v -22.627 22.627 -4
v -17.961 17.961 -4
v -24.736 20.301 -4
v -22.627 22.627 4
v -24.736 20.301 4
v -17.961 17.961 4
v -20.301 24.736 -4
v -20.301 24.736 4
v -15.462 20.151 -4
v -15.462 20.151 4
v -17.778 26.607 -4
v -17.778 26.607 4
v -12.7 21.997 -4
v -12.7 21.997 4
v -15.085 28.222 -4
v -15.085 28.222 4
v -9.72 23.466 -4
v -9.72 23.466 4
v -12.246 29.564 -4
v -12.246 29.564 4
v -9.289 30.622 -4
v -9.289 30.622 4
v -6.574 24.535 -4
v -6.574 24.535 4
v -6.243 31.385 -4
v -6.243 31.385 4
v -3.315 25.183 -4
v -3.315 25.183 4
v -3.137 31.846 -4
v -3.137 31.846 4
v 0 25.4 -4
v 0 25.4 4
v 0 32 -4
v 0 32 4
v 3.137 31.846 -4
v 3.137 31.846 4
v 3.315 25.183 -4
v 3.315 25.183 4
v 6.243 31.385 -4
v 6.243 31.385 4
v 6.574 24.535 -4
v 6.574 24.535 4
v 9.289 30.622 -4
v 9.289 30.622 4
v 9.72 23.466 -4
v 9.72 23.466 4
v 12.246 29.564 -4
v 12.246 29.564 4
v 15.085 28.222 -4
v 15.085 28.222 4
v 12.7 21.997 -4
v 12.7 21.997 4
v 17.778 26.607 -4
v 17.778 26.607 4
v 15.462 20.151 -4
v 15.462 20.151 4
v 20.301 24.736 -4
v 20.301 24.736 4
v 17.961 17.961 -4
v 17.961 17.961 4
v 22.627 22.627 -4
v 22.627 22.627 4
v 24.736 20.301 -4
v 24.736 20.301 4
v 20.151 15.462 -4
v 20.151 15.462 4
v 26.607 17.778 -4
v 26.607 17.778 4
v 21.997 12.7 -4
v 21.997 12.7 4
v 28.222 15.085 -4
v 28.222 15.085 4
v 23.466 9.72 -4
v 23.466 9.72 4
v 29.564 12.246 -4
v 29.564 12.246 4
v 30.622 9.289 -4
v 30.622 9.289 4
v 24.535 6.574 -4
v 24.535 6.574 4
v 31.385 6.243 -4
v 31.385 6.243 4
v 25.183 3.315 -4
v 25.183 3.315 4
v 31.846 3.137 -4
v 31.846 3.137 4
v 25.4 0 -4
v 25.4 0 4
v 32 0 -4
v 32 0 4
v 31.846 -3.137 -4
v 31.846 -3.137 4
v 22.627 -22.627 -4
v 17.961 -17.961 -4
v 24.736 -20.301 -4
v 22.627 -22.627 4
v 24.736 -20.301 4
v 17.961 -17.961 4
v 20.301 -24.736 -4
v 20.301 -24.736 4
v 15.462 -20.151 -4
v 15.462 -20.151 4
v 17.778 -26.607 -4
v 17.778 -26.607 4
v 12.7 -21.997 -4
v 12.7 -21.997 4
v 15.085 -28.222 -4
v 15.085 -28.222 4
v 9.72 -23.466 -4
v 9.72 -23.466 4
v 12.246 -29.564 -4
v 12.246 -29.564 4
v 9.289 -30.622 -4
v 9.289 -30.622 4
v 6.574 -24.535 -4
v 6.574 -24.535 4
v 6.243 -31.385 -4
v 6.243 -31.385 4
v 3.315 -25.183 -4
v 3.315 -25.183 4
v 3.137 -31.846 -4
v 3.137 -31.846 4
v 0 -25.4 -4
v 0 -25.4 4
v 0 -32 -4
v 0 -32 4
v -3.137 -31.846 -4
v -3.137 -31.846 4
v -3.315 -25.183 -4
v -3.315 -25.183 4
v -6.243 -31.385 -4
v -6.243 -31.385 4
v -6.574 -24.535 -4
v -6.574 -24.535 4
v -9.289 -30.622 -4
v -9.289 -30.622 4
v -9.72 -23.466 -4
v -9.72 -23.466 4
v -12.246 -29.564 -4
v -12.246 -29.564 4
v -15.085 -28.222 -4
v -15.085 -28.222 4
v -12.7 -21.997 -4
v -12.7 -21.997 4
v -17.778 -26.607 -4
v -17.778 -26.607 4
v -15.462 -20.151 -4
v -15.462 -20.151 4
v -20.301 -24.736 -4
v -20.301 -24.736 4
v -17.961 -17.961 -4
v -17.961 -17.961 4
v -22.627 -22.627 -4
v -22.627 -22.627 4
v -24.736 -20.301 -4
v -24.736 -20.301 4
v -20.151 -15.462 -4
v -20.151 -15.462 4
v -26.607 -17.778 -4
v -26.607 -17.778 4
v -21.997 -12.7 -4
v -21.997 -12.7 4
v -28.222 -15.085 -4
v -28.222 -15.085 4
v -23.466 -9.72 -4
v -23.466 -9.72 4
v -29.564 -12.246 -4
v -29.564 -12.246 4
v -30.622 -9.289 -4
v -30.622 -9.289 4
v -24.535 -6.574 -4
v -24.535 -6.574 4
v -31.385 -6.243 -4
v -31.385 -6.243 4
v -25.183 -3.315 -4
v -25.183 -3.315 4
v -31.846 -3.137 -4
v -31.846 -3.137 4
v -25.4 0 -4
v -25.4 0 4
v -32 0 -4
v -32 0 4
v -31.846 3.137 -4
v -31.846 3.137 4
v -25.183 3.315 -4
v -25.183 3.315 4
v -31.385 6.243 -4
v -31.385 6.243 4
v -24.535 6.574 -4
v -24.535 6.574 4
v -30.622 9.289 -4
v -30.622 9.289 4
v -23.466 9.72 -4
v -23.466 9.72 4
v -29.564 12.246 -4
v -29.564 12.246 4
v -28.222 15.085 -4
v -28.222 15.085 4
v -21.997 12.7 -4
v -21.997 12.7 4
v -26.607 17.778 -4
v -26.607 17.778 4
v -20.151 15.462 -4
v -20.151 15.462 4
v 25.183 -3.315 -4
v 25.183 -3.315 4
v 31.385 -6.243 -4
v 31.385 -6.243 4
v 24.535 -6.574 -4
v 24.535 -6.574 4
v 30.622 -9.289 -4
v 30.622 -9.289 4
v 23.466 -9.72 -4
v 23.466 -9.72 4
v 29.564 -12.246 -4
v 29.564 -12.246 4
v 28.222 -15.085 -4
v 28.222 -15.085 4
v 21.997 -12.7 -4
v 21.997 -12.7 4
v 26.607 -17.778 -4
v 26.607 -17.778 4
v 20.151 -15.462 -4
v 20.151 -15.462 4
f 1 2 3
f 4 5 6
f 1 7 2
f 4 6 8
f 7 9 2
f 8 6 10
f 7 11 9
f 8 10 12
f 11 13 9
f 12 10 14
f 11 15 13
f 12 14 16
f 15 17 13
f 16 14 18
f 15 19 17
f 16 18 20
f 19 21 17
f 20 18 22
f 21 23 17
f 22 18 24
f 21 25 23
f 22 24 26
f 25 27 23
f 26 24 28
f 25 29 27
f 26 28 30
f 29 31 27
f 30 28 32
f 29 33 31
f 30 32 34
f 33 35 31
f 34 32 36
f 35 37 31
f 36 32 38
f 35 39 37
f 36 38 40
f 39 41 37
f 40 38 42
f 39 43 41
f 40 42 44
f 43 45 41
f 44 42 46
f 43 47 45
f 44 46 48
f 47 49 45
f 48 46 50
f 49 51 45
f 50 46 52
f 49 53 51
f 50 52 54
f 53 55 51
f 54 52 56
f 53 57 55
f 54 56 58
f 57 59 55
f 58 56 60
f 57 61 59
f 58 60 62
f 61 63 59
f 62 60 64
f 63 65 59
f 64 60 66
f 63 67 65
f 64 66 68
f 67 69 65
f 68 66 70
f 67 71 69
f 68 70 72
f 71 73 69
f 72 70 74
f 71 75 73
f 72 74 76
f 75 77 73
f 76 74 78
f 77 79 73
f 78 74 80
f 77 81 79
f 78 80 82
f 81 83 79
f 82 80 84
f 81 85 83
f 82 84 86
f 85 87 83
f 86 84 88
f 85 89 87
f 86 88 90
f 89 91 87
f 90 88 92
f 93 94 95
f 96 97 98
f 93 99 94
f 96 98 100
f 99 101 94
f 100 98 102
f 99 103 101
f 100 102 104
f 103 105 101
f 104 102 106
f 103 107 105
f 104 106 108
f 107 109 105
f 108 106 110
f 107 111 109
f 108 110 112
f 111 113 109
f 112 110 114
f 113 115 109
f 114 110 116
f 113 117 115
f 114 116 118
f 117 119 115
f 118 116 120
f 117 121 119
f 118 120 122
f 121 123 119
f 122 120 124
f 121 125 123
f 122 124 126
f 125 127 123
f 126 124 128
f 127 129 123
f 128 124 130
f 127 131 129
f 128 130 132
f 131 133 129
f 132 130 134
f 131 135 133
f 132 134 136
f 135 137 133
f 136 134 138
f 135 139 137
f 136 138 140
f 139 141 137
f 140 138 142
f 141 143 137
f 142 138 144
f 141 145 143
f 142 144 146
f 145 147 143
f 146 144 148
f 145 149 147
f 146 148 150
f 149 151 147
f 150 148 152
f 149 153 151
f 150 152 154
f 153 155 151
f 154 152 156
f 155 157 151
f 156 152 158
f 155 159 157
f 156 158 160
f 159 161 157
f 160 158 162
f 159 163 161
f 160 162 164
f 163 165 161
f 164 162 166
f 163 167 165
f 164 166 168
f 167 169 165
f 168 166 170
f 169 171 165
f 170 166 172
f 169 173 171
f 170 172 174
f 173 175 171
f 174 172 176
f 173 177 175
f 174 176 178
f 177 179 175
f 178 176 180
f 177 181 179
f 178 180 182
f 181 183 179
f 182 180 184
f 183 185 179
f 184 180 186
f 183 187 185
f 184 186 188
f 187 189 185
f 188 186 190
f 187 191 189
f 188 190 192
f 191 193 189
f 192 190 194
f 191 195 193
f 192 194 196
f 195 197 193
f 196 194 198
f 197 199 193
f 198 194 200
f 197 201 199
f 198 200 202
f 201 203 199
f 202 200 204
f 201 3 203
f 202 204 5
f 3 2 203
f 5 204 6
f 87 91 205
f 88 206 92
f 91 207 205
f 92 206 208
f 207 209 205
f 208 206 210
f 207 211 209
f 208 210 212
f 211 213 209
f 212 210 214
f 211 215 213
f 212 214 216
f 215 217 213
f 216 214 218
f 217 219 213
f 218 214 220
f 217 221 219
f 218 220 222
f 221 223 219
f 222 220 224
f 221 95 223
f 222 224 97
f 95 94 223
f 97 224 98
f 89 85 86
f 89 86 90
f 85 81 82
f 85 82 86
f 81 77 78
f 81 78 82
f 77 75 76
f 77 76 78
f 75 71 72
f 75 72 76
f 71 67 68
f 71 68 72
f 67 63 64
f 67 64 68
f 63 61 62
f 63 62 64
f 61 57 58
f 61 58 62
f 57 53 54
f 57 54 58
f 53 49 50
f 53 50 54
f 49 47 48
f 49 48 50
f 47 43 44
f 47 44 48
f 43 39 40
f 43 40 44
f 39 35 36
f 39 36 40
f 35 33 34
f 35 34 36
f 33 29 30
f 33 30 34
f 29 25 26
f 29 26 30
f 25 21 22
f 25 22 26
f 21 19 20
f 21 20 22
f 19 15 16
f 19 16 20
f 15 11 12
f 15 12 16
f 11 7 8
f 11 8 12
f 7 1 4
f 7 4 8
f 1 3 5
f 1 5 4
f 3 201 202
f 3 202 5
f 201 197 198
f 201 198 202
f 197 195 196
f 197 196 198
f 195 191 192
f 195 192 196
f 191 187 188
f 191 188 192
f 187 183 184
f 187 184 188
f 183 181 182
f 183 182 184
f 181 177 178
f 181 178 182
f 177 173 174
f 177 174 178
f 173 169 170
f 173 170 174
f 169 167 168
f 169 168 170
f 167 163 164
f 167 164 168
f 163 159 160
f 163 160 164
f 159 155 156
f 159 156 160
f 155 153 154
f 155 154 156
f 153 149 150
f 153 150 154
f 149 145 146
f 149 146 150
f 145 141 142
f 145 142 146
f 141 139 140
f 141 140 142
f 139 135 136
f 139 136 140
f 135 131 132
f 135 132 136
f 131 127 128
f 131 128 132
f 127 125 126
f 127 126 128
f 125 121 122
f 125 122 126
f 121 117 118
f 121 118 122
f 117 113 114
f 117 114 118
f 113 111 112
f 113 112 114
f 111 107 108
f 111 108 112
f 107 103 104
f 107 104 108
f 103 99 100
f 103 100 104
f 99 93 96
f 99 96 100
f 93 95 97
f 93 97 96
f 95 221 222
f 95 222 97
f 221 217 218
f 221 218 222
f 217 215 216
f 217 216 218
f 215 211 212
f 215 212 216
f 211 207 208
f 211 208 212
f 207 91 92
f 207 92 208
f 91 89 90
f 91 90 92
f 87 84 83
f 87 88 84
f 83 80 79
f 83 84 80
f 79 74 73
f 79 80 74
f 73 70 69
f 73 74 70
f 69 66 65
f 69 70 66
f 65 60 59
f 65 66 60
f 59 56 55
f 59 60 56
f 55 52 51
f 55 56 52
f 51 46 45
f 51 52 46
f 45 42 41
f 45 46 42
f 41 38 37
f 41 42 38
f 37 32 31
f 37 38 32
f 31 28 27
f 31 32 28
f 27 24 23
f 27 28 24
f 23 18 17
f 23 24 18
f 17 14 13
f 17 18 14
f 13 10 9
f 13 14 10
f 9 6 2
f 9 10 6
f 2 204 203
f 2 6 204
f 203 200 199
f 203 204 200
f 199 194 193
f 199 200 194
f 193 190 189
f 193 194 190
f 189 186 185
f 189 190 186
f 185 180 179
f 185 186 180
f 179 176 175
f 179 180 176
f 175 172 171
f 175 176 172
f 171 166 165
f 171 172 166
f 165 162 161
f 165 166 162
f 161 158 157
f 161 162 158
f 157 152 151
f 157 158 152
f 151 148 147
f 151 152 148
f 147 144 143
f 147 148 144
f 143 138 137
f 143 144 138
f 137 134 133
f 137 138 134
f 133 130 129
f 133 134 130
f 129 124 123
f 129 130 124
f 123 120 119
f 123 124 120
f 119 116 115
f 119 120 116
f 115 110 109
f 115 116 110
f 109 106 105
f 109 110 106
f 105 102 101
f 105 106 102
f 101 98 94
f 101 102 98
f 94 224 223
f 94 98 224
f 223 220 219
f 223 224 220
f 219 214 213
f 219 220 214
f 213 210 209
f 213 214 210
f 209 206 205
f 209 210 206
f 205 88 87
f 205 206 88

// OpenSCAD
polyhedron(points=[[-22.627417, 22.627417, -4.0], [-24.736335, 20.300585, -4.0], [-17.960512, 17.960512, -4.0], [-22.627417, 22.627417, 4.0], [-24.736335, 20.300585, 4.0], [-17.960512, 17.960512, 4.0], [-20.300585, 24.736335, -4.0], [-20.300585, 24.736335, 4.0], [-15.46254, 20.151175, -4.0], [-15.46254, 20.151175, 4.0], [-17.778247, 26.607028, -4.0], [-17.778247, 26.607028, 4.0], [-12.7, 21.997045, -4.0], [-12.7, 21.997045, 4.0], [-15.084696, 28.22148, -4.0], [-15.084696, 28.22148, 4.0], [-9.720159, 23.46654, -4.0], [-9.720159, 23.46654, 4.0], [-12.24587, 29.564145, -4.0], [-12.24587, 29.564145, 4.0], [-9.28911, 30.622091, -4.0], [-9.28911, 30.622091, 4.0], [-6.574004, 24.534516, -4.0], [-6.574004, 24.534516, 4.0], [-6.24289, 31.385129, -4.0], [-6.24289, 31.385129, 4.0], [-3.315365, 25.182699, -4.0], [-3.315365, 25.182699, 4.0], [-3.136548, 31.845911, -4.0], [-3.136548, 31.845911, 4.0], [0.0, 25.4, -4.0], [0.0, 25.4, 4.0], [0.0, 32.0, -4.0], [0.0, 32.0, 4.0], [3.136548, 31.845911, -4.0], [3.136548, 31.845911, 4.0], [3.315365, 25.182699, -4.0], [3.315365, 25.182699, 4.0], [6.24289, 31.385129, -4.0], [6.24289, 31.385129, 4.0], [6.574004, 24.534516, -4.0], [6.574004, 24.534516, 4.0], [9.28911, 30.622091, -4.0], [9.28911, 30.622091, 4.0], [9.720159, 23.46654, -4.0], [9.720159, 23.46654, 4.0], [12.24587, 29.564145, -4.0], [12.24587, 29.564145, 4.0], [15.084696, 28.22148, -4.0], [15.084696, 28.22148, 4.0], [12.7, 21.997045, -4.0], [12.7, 21.997045, 4.0], [17.778247, 26.607028, -4.0], [17.778247, 26.607028, 4.0], [15.46254, 20.151175, -4.0], [15.46254, 20.151175, 4.0], [20.300585, 24.736335, -4.0], [20.300585, 24.736335, 4.0], [17.960512, 17.960512, -4.0], [17.960512, 17.960512, 4.0], [22.627417, 22.627417, -4.0], [22.627417, 22.627417, 4.0], [24.736335, 20.300585, -4.0], [24.736335, 20.300585, 4.0], [20.151175, 15.46254, -4.0], [20.151175, 15.46254, 4.0], [26.607028, 17.778247, -4.0], [26.607028, 17.778247, 4.0], [21.997045, 12.7, -4.0], [21.997045, 12.7, 4.0], [28.22148, 15.084696, -4.0], [28.22148, 15.084696, 4.0], [23.46654, 9.720159, -4.0], [23.46654, 9.720159, 4.0], [29.564145, 12.24587, -4.0], [29.564145, 12.24587, 4.0], [30.622091, 9.28911, -4.0], [30.622091, 9.28911, 4.0], [24.534516, 6.574004, -4.0], [24.534516, 6.574004, 4.0], [31.385129, 6.24289, -4.0], [31.385129, 6.24289, 4.0], [25.182699, 3.315365, -4.0], [25.182699, 3.315365, 4.0], [31.845911, 3.136548, -4.0], [31.845911, 3.136548, 4.0], [25.4, 0.0, -4.0], [25.4, 0.0, 4.0], [32.0, 0.0, -4.0], [32.0, 0.0, 4.0], [31.845911, -3.136548, -4.0], [31.845911, -3.136548, 4.0], [22.627417, -22.627417, -4.0], [24.736335, -20.300585, -4.0], [17.960512, -17.960512, -4.0], [22.627417, -22.627417, 4.0], [24.736335, -20.300585, 4.0], [17.960512, -17.960512, 4.0], [20.300585, -24.736335, -4.0], [20.300585, -24.736335, 4.0], [15.46254, -20.151175, -4.0], [15.46254, -20.151175, 4.0], [17.778247, -26.607028, -4.0], [17.778247, -26.607028, 4.0], [12.7, -21.997045, -4.0], [12.7, -21.997045, 4.0], [15.084696, -28.22148, -4.0], [15.084696, -28.22148, 4.0], [9.720159, -23.46654, -4.0], [9.720159, -23.46654, 4.0], [12.24587, -29.564145, -4.0], [12.24587, -29.564145, 4.0], [9.28911, -30.622091, -4.0], [9.28911, -30.622091, 4.0], [6.574004, -24.534516, -4.0], [6.574004, -24.534516, 4.0], [6.24289, -31.385129, -4.0], [6.24289, -31.385129, 4.0], [3.315365, -25.182699, -4.0], [3.315365, -25.182699, 4.0], [3.136548, -31.845911, -4.0], [3.136548, -31.845911, 4.0], [-0.0, -25.4, -4.0], [-0.0, -25.4, 4.0], [-0.0, -32.0, -4.0], [-0.0, -32.0, 4.0], [-3.136548, -31.845911, -4.0], [-3.136548, -31.845911, 4.0], [-3.315365, -25.182699, -4.0], [-3.315365, -25.182699, 4.0], [-6.24289, -31.385129, -4.0], [-6.24289, -31.385129, 4.0], [-6.574004, -24.534516, -4.0], [-6.574004, -24.534516, 4.0], [-9.28911, -30.622091, -4.0], [-9.28911, -30.622091, 4.0], [-9.720159, -23.46654, -4.0], [-9.720159, -23.46654, 4.0], [-12.24587, -29.564145, -4.0], [-12.24587, -29.564145, 4.0], [-15.084696, -28.22148, -4.0], [-15.084696, -28.22148, 4.0], [-12.7, -21.997045, -4.0], [-12.7, -21.997045, 4.0], [-17.778247, -26.607028, -4.0], [-17.778247, -26.607028, 4.0], [-15.46254, -20.151175, -4.0], [-15.46254, -20.151175, 4.0], [-20.300585, -24.736335, -4.0], [-20.300585, -24.736335, 4.0], [-17.960512, -17.960512, -4.0], [-17.960512, -17.960512, 4.0], [-22.627417, -22.627417, -4.0], [-22.627417, -22.627417, 4.0], [-24.736335, -20.300585, -4.0], [-24.736335, -20.300585, 4.0], [-20.151175, -15.46254, -4.0], [-20.151175, -15.46254, 4.0], [-26.607028, -17.778247, -4.0], [-26.607028, -17.778247, 4.0], [-21.997045, -12.7, -4.0], [-21.997045, -12.7, 4.0], [-28.22148, -15.084696, -4.0], [-28.22148, -15.084696, 4.0], [-23.46654, -9.720159, -4.0], [-23.46654, -9.720159, 4.0], [-29.564145, -12.24587, -4.0], [-29.564145, -12.24587, 4.0], [-30.622091, -9.28911, -4.0], [-30.622091, -9.28911, 4.0], [-24.534516, -6.574004, -4.0], [-24.534516, -6.574004, 4.0], [-31.385129, -6.24289, -4.0], [-31.385129, -6.24289, 4.0], [-25.182699, -3.315365, -4.0], [-25.182699, -3.315365, 4.0], [-31.845911, -3.136548, -4.0], [-31.845911, -3.136548, 4.0], [-25.4, 0.0, -4.0], [-25.4, 0.0, 4.0], [-32.0, 0.0, -4.0], [-32.0, 0.0, 4.0], [-31.845911, 3.136548, -4.0], [-31.845911, 3.136548, 4.0], [-25.182699, 3.315365, -4.0], [-25.182699, 3.315365, 4.0], [-31.385129, 6.24289, -4.0], [-31.385129, 6.24289, 4.0], [-24.534516, 6.574004, -4.0], [-24.534516, 6.574004, 4.0], [-30.622091, 9.28911, -4.0], [-30.622091, 9.28911, 4.0], [-23.46654, 9.720159, -4.0], [-23.46654, 9.720159, 4.0], [-29.564145, 12.24587, -4.0], [-29.564145, 12.24587, 4.0], [-28.22148, 15.084696, -4.0], [-28.22148, 15.084696, 4.0], [-21.997045, 12.7, -4.0], [-21.997045, 12.7, 4.0], [-26.607028, 17.778247, -4.0], [-26.607028, 17.778247, 4.0], [-20.151175, 15.46254, -4.0], [-20.151175, 15.46254, 4.0], [25.182699, -3.315365, -4.0], [25.182699, -3.315365, 4.0], [31.385129, -6.24289, -4.0], [31.385129, -6.24289, 4.0], [24.534516, -6.574004, -4.0], [24.534516, -6.574004, 4.0], [30.622091, -9.28911, -4.0], [30.622091, -9.28911, 4.0], [23.46654, -9.720159, -4.0], [23.46654, -9.720159, 4.0], [29.564145, -12.24587, -4.0], [29.564145, -12.24587, 4.0], [28.22148, -15.084696, -4.0], [28.22148, -15.084696, 4.0], [21.997045, -12.7, -4.0], [21.997045, -12.7, 4.0], [26.607028, -17.778247, -4.0], [26.607028, -17.778247, 4.0], [20.151175, -15.46254, -4.0], [20.151175, -15.46254, 4.0]], faces=[[0, 2, 1], [3, 4, 5], [0, 6, 2], [3, 5, 7], [6, 8, 2], [7, 5, 9], [6, 10, 8], [7, 9, 11], [10, 12, 8], [11, 9, 13], [10, 14, 12], [11, 13, 15], [14, 16, 12], [15, 13, 17], [14, 18, 16], [15, 17, 19], [18, 20, 16], [19, 17, 21], [20, 22, 16], [21, 17, 23], [20, 24, 22], [21, 23, 25], [24, 26, 22], [25, 23, 27], [24, 28, 26], [25, 27, 29], [28, 30, 26], [29, 27, 31], [28, 32, 30], [29, 31, 33], [32, 34, 30], [33, 31, 35], [34, 36, 30], [35, 31, 37], [34, 38, 36], [35, 37, 39], [38, 40, 36], [39, 37, 41], [38, 42, 40], [39, 41, 43], [42, 44, 40], [43, 41, 45], [42, 46, 44], [43, 45, 47], [46, 48, 44], [47, 45, 49], [48, 50, 44], [49, 45, 51], [48, 52, 50], [49, 51, 53], [52, 54, 50], [53, 51, 55], [52, 56, 54], [53, 55, 57], [56, 58, 54], [57, 55, 59], [56, 60, 58], [57, 59, 61], [60, 62, 58], [61, 59, 63], [62, 64, 58], [63, 59, 65], [62, 66, 64], [63, 65, 67], [66, 68, 64], [67, 65, 69], [66, 70, 68], [67, 69, 71], [70, 72, 68], [71, 69, 73], [70, 74, 72], [71, 73, 75], [74, 76, 72], [75, 73, 77], [76, 78, 72], [77, 73, 79], [76, 80, 78], [77, 79, 81], [80, 82, 78], [81, 79, 83], [80, 84, 82], [81, 83, 85], [84, 86, 82], [85, 83, 87], [84, 88, 86], [85, 87, 89], [88, 90, 86], [89, 87, 91], [92, 94, 93], [95, 96, 97], [92, 98, 94], [95, 97, 99], [98, 100, 94], [99, 97, 101], [98, 102, 100], [99, 101, 103], [102, 104, 100], [103, 101, 105], [102, 106, 104], [103, 105, 107], [106, 108, 104], [107, 105, 109], [106, 110, 108], [107, 109, 111], [110, 112, 108], [111, 109, 113], [112, 114, 108], [113, 109, 115], [112, 116, 114], [113, 115, 117], [116, 118, 114], [117, 115, 119], [116, 120, 118], [117, 119, 121], [120, 122, 118], [121, 119, 123], [120, 124, 122], [121, 123, 125], [124, 126, 122], [125, 123, 127], [126, 128, 122], [127, 123, 129], [126, 130, 128], [127, 129, 131], [130, 132, 128], [131, 129, 133], [130, 134, 132], [131, 133, 135], [134, 136, 132], [135, 133, 137], [134, 138, 136], [135, 137, 139], [138, 140, 136], [139, 137, 141], [140, 142, 136], [141, 137, 143], [140, 144, 142], [141, 143, 145], [144, 146, 142], [145, 143, 147], [144, 148, 146], [145, 147, 149], [148, 150, 146], [149, 147, 151], [148, 152, 150], [149, 151, 153], [152, 154, 150], [153, 151, 155], [154, 156, 150], [155, 151, 157], [154, 158, 156], [155, 157, 159], [158, 160, 156], [159, 157, 161], [158, 162, 160], [159, 161, 163], [162, 164, 160], [163, 161, 165], [162, 166, 164], [163, 165, 167], [166, 168, 164], [167, 165, 169], [168, 170, 164], [169, 165, 171], [168, 172, 170], [169, 171, 173], [172, 174, 170], [173, 171, 175], [172, 176, 174], [173, 175, 177], [176, 178, 174], [177, 175, 179], [176, 180, 178], [177, 179, 181], [180, 182, 178], [181, 179, 183], [182, 184, 178], [183, 179, 185], [182, 186, 184], [183, 185, 187], [186, 188, 184], [187, 185, 189], [186, 190, 188], [187, 189, 191], [190, 192, 188], [191, 189, 193], [190, 194, 192], [191, 193, 195], [194, 196, 192], [195, 193, 197], [196, 198, 192], [197, 193, 199], [196, 200, 198], [197, 199, 201], [200, 202, 198], [201, 199, 203], [200, 1, 202], [201, 203, 4], [1, 2, 202], [4, 203, 5], [86, 90, 204], [87, 205, 91], [90, 206, 204], [91, 205, 207], [206, 208, 204], [207, 205, 209], [206, 210, 208], [207, 209, 211], [210, 212, 208], [211, 209, 213], [210, 214, 212], [211, 213, 215], [214, 216, 212], [215, 213, 217], [216, 218, 212], [217, 213, 219], [216, 220, 218], [217, 219, 221], [220, 222, 218], [221, 219, 223], [220, 93, 222], [221, 223, 96], [93, 94, 222], [96, 223, 97], [88, 84, 85], [88, 85, 89], [84, 80, 81], [84, 81, 85], [80, 76, 77], [80, 77, 81], [76, 74, 75], [76, 75, 77], [74, 70, 71], [74, 71, 75], [70, 66, 67], [70, 67, 71], [66, 62, 63], [66, 63, 67], [62, 60, 61], [62, 61, 63], [60, 56, 57], [60, 57, 61], [56, 52, 53], [56, 53, 57], [52, 48, 49], [52, 49, 53], [48, 46, 47], [48, 47, 49], [46, 42, 43], [46, 43, 47], [42, 38, 39], [42, 39, 43], [38, 34, 35], [38, 35, 39], [34, 32, 33], [34, 33, 35], [32, 28, 29], [32, 29, 33], [28, 24, 25], [28, 25, 29], [24, 20, 21], [24, 21, 25], [20, 18, 19], [20, 19, 21], [18, 14, 15], [18, 15, 19], [14, 10, 11], [14, 11, 15], [10, 6, 7], [10, 7, 11], [6, 0, 3], [6, 3, 7], [0, 1, 4], [0, 4, 3], [1, 200, 201], [1, 201, 4], [200, 196, 197], [200, 197, 201], [196, 194, 195], [196, 195, 197], [194, 190, 191], [194, 191, 195], [190, 186, 187], [190, 187, 191], [186, 182, 183], [186, 183, 187], [182, 180, 181], [182, 181, 183], [180, 176, 177], [180, 177, 181], [176, 172, 173], [176, 173, 177], [172, 168, 169], [172, 169, 173], [168, 166, 167], [168, 167, 169], [166, 162, 163], [166, 163, 167], [162, 158, 159], [162, 159, 163], [158, 154, 155], [158, 155, 159], [154, 152, 153], [154, 153, 155], [152, 148, 149], [152, 149, 153], [148, 144, 145], [148, 145, 149], [144, 140, 141], [144, 141, 145], [140, 138, 139], [140, 139, 141], [138, 134, 135], [138, 135, 139], [134, 130, 131], [134, 131, 135], [130, 126, 127], [130, 127, 131], [126, 124, 125], [126, 125, 127], [124, 120, 121], [124, 121, 125], [120, 116, 117], [120, 117, 121], [116, 112, 113], [116, 113, 117], [112, 110, 111], [112, 111, 113], [110, 106, 107], [110, 107, 111], [106, 102, 103], [106, 103, 107], [102, 98, 99], [102, 99, 103], [98, 92, 95], [98, 95, 99], [92, 93, 96], [92, 96, 95], [93, 220, 221], [93, 221, 96], [220, 216, 217], [220, 217, 221], [216, 214, 215], [216, 215, 217], [214, 210, 211], [214, 211, 215], [210, 206, 207], [210, 207, 211], [206, 90, 91], [206, 91, 207], [90, 88, 89], [90, 89, 91], [86, 83, 82], [86, 87, 83], [82, 79, 78], [82, 83, 79], [78, 73, 72], [78, 79, 73], [72, 69, 68], [72, 73, 69], [68, 65, 64], [68, 69, 65], [64, 59, 58], [64, 65, 59], [58, 55, 54], [58, 59, 55], [54, 51, 50], [54, 55, 51], [50, 45, 44], [50, 51, 45], [44, 41, 40], [44, 45, 41], [40, 37, 36], [40, 41, 37], [36, 31, 30], [36, 37, 31], [30, 27, 26], [30, 31, 27], [26, 23, 22], [26, 27, 23], [22, 17, 16], [22, 23, 17], [16, 13, 12], [16, 17, 13], [12, 9, 8], [12, 13, 9], [8, 5, 2], [8, 9, 5], [2, 203, 202], [2, 5, 203], [202, 199, 198], [202, 203, 199], [198, 193, 192], [198, 199, 193], [192, 189, 188], [192, 193, 189], [188, 185, 184], [188, 189, 185], [184, 179, 178], [184, 185, 179], [178, 175, 174], [178, 179, 175], [174, 171, 170], [174, 175, 171], [170, 165, 164], [170, 171, 165], [164, 161, 160], [164, 165, 161], [160, 157, 156], [160, 161, 157], [156, 151, 150], [156, 157, 151], [150, 147, 146], [150, 151, 147], [146, 143, 142], [146, 147, 143], [142, 137, 136], [142, 143, 137], [136, 133, 132], [136, 137, 133], [132, 129, 128], [132, 133, 129], [128, 123, 122], [128, 129, 123], [122, 119, 118], [122, 123, 119], [118, 115, 114], [118, 119, 115], [114, 109, 108], [114, 115, 109], [108, 105, 104], [108, 109, 105], [104, 101, 100], [104, 105, 101], [100, 97, 94], [100, 101, 97], [94, 223, 222], [94, 97, 223], [222, 219, 218], [222, 223, 219], [218, 213, 212], [218, 219, 213], [212, 209, 208], [212, 213, 209], [208, 205, 204], [208, 209, 205], [204, 87, 86], [204, 205, 87]], convexity=20);
